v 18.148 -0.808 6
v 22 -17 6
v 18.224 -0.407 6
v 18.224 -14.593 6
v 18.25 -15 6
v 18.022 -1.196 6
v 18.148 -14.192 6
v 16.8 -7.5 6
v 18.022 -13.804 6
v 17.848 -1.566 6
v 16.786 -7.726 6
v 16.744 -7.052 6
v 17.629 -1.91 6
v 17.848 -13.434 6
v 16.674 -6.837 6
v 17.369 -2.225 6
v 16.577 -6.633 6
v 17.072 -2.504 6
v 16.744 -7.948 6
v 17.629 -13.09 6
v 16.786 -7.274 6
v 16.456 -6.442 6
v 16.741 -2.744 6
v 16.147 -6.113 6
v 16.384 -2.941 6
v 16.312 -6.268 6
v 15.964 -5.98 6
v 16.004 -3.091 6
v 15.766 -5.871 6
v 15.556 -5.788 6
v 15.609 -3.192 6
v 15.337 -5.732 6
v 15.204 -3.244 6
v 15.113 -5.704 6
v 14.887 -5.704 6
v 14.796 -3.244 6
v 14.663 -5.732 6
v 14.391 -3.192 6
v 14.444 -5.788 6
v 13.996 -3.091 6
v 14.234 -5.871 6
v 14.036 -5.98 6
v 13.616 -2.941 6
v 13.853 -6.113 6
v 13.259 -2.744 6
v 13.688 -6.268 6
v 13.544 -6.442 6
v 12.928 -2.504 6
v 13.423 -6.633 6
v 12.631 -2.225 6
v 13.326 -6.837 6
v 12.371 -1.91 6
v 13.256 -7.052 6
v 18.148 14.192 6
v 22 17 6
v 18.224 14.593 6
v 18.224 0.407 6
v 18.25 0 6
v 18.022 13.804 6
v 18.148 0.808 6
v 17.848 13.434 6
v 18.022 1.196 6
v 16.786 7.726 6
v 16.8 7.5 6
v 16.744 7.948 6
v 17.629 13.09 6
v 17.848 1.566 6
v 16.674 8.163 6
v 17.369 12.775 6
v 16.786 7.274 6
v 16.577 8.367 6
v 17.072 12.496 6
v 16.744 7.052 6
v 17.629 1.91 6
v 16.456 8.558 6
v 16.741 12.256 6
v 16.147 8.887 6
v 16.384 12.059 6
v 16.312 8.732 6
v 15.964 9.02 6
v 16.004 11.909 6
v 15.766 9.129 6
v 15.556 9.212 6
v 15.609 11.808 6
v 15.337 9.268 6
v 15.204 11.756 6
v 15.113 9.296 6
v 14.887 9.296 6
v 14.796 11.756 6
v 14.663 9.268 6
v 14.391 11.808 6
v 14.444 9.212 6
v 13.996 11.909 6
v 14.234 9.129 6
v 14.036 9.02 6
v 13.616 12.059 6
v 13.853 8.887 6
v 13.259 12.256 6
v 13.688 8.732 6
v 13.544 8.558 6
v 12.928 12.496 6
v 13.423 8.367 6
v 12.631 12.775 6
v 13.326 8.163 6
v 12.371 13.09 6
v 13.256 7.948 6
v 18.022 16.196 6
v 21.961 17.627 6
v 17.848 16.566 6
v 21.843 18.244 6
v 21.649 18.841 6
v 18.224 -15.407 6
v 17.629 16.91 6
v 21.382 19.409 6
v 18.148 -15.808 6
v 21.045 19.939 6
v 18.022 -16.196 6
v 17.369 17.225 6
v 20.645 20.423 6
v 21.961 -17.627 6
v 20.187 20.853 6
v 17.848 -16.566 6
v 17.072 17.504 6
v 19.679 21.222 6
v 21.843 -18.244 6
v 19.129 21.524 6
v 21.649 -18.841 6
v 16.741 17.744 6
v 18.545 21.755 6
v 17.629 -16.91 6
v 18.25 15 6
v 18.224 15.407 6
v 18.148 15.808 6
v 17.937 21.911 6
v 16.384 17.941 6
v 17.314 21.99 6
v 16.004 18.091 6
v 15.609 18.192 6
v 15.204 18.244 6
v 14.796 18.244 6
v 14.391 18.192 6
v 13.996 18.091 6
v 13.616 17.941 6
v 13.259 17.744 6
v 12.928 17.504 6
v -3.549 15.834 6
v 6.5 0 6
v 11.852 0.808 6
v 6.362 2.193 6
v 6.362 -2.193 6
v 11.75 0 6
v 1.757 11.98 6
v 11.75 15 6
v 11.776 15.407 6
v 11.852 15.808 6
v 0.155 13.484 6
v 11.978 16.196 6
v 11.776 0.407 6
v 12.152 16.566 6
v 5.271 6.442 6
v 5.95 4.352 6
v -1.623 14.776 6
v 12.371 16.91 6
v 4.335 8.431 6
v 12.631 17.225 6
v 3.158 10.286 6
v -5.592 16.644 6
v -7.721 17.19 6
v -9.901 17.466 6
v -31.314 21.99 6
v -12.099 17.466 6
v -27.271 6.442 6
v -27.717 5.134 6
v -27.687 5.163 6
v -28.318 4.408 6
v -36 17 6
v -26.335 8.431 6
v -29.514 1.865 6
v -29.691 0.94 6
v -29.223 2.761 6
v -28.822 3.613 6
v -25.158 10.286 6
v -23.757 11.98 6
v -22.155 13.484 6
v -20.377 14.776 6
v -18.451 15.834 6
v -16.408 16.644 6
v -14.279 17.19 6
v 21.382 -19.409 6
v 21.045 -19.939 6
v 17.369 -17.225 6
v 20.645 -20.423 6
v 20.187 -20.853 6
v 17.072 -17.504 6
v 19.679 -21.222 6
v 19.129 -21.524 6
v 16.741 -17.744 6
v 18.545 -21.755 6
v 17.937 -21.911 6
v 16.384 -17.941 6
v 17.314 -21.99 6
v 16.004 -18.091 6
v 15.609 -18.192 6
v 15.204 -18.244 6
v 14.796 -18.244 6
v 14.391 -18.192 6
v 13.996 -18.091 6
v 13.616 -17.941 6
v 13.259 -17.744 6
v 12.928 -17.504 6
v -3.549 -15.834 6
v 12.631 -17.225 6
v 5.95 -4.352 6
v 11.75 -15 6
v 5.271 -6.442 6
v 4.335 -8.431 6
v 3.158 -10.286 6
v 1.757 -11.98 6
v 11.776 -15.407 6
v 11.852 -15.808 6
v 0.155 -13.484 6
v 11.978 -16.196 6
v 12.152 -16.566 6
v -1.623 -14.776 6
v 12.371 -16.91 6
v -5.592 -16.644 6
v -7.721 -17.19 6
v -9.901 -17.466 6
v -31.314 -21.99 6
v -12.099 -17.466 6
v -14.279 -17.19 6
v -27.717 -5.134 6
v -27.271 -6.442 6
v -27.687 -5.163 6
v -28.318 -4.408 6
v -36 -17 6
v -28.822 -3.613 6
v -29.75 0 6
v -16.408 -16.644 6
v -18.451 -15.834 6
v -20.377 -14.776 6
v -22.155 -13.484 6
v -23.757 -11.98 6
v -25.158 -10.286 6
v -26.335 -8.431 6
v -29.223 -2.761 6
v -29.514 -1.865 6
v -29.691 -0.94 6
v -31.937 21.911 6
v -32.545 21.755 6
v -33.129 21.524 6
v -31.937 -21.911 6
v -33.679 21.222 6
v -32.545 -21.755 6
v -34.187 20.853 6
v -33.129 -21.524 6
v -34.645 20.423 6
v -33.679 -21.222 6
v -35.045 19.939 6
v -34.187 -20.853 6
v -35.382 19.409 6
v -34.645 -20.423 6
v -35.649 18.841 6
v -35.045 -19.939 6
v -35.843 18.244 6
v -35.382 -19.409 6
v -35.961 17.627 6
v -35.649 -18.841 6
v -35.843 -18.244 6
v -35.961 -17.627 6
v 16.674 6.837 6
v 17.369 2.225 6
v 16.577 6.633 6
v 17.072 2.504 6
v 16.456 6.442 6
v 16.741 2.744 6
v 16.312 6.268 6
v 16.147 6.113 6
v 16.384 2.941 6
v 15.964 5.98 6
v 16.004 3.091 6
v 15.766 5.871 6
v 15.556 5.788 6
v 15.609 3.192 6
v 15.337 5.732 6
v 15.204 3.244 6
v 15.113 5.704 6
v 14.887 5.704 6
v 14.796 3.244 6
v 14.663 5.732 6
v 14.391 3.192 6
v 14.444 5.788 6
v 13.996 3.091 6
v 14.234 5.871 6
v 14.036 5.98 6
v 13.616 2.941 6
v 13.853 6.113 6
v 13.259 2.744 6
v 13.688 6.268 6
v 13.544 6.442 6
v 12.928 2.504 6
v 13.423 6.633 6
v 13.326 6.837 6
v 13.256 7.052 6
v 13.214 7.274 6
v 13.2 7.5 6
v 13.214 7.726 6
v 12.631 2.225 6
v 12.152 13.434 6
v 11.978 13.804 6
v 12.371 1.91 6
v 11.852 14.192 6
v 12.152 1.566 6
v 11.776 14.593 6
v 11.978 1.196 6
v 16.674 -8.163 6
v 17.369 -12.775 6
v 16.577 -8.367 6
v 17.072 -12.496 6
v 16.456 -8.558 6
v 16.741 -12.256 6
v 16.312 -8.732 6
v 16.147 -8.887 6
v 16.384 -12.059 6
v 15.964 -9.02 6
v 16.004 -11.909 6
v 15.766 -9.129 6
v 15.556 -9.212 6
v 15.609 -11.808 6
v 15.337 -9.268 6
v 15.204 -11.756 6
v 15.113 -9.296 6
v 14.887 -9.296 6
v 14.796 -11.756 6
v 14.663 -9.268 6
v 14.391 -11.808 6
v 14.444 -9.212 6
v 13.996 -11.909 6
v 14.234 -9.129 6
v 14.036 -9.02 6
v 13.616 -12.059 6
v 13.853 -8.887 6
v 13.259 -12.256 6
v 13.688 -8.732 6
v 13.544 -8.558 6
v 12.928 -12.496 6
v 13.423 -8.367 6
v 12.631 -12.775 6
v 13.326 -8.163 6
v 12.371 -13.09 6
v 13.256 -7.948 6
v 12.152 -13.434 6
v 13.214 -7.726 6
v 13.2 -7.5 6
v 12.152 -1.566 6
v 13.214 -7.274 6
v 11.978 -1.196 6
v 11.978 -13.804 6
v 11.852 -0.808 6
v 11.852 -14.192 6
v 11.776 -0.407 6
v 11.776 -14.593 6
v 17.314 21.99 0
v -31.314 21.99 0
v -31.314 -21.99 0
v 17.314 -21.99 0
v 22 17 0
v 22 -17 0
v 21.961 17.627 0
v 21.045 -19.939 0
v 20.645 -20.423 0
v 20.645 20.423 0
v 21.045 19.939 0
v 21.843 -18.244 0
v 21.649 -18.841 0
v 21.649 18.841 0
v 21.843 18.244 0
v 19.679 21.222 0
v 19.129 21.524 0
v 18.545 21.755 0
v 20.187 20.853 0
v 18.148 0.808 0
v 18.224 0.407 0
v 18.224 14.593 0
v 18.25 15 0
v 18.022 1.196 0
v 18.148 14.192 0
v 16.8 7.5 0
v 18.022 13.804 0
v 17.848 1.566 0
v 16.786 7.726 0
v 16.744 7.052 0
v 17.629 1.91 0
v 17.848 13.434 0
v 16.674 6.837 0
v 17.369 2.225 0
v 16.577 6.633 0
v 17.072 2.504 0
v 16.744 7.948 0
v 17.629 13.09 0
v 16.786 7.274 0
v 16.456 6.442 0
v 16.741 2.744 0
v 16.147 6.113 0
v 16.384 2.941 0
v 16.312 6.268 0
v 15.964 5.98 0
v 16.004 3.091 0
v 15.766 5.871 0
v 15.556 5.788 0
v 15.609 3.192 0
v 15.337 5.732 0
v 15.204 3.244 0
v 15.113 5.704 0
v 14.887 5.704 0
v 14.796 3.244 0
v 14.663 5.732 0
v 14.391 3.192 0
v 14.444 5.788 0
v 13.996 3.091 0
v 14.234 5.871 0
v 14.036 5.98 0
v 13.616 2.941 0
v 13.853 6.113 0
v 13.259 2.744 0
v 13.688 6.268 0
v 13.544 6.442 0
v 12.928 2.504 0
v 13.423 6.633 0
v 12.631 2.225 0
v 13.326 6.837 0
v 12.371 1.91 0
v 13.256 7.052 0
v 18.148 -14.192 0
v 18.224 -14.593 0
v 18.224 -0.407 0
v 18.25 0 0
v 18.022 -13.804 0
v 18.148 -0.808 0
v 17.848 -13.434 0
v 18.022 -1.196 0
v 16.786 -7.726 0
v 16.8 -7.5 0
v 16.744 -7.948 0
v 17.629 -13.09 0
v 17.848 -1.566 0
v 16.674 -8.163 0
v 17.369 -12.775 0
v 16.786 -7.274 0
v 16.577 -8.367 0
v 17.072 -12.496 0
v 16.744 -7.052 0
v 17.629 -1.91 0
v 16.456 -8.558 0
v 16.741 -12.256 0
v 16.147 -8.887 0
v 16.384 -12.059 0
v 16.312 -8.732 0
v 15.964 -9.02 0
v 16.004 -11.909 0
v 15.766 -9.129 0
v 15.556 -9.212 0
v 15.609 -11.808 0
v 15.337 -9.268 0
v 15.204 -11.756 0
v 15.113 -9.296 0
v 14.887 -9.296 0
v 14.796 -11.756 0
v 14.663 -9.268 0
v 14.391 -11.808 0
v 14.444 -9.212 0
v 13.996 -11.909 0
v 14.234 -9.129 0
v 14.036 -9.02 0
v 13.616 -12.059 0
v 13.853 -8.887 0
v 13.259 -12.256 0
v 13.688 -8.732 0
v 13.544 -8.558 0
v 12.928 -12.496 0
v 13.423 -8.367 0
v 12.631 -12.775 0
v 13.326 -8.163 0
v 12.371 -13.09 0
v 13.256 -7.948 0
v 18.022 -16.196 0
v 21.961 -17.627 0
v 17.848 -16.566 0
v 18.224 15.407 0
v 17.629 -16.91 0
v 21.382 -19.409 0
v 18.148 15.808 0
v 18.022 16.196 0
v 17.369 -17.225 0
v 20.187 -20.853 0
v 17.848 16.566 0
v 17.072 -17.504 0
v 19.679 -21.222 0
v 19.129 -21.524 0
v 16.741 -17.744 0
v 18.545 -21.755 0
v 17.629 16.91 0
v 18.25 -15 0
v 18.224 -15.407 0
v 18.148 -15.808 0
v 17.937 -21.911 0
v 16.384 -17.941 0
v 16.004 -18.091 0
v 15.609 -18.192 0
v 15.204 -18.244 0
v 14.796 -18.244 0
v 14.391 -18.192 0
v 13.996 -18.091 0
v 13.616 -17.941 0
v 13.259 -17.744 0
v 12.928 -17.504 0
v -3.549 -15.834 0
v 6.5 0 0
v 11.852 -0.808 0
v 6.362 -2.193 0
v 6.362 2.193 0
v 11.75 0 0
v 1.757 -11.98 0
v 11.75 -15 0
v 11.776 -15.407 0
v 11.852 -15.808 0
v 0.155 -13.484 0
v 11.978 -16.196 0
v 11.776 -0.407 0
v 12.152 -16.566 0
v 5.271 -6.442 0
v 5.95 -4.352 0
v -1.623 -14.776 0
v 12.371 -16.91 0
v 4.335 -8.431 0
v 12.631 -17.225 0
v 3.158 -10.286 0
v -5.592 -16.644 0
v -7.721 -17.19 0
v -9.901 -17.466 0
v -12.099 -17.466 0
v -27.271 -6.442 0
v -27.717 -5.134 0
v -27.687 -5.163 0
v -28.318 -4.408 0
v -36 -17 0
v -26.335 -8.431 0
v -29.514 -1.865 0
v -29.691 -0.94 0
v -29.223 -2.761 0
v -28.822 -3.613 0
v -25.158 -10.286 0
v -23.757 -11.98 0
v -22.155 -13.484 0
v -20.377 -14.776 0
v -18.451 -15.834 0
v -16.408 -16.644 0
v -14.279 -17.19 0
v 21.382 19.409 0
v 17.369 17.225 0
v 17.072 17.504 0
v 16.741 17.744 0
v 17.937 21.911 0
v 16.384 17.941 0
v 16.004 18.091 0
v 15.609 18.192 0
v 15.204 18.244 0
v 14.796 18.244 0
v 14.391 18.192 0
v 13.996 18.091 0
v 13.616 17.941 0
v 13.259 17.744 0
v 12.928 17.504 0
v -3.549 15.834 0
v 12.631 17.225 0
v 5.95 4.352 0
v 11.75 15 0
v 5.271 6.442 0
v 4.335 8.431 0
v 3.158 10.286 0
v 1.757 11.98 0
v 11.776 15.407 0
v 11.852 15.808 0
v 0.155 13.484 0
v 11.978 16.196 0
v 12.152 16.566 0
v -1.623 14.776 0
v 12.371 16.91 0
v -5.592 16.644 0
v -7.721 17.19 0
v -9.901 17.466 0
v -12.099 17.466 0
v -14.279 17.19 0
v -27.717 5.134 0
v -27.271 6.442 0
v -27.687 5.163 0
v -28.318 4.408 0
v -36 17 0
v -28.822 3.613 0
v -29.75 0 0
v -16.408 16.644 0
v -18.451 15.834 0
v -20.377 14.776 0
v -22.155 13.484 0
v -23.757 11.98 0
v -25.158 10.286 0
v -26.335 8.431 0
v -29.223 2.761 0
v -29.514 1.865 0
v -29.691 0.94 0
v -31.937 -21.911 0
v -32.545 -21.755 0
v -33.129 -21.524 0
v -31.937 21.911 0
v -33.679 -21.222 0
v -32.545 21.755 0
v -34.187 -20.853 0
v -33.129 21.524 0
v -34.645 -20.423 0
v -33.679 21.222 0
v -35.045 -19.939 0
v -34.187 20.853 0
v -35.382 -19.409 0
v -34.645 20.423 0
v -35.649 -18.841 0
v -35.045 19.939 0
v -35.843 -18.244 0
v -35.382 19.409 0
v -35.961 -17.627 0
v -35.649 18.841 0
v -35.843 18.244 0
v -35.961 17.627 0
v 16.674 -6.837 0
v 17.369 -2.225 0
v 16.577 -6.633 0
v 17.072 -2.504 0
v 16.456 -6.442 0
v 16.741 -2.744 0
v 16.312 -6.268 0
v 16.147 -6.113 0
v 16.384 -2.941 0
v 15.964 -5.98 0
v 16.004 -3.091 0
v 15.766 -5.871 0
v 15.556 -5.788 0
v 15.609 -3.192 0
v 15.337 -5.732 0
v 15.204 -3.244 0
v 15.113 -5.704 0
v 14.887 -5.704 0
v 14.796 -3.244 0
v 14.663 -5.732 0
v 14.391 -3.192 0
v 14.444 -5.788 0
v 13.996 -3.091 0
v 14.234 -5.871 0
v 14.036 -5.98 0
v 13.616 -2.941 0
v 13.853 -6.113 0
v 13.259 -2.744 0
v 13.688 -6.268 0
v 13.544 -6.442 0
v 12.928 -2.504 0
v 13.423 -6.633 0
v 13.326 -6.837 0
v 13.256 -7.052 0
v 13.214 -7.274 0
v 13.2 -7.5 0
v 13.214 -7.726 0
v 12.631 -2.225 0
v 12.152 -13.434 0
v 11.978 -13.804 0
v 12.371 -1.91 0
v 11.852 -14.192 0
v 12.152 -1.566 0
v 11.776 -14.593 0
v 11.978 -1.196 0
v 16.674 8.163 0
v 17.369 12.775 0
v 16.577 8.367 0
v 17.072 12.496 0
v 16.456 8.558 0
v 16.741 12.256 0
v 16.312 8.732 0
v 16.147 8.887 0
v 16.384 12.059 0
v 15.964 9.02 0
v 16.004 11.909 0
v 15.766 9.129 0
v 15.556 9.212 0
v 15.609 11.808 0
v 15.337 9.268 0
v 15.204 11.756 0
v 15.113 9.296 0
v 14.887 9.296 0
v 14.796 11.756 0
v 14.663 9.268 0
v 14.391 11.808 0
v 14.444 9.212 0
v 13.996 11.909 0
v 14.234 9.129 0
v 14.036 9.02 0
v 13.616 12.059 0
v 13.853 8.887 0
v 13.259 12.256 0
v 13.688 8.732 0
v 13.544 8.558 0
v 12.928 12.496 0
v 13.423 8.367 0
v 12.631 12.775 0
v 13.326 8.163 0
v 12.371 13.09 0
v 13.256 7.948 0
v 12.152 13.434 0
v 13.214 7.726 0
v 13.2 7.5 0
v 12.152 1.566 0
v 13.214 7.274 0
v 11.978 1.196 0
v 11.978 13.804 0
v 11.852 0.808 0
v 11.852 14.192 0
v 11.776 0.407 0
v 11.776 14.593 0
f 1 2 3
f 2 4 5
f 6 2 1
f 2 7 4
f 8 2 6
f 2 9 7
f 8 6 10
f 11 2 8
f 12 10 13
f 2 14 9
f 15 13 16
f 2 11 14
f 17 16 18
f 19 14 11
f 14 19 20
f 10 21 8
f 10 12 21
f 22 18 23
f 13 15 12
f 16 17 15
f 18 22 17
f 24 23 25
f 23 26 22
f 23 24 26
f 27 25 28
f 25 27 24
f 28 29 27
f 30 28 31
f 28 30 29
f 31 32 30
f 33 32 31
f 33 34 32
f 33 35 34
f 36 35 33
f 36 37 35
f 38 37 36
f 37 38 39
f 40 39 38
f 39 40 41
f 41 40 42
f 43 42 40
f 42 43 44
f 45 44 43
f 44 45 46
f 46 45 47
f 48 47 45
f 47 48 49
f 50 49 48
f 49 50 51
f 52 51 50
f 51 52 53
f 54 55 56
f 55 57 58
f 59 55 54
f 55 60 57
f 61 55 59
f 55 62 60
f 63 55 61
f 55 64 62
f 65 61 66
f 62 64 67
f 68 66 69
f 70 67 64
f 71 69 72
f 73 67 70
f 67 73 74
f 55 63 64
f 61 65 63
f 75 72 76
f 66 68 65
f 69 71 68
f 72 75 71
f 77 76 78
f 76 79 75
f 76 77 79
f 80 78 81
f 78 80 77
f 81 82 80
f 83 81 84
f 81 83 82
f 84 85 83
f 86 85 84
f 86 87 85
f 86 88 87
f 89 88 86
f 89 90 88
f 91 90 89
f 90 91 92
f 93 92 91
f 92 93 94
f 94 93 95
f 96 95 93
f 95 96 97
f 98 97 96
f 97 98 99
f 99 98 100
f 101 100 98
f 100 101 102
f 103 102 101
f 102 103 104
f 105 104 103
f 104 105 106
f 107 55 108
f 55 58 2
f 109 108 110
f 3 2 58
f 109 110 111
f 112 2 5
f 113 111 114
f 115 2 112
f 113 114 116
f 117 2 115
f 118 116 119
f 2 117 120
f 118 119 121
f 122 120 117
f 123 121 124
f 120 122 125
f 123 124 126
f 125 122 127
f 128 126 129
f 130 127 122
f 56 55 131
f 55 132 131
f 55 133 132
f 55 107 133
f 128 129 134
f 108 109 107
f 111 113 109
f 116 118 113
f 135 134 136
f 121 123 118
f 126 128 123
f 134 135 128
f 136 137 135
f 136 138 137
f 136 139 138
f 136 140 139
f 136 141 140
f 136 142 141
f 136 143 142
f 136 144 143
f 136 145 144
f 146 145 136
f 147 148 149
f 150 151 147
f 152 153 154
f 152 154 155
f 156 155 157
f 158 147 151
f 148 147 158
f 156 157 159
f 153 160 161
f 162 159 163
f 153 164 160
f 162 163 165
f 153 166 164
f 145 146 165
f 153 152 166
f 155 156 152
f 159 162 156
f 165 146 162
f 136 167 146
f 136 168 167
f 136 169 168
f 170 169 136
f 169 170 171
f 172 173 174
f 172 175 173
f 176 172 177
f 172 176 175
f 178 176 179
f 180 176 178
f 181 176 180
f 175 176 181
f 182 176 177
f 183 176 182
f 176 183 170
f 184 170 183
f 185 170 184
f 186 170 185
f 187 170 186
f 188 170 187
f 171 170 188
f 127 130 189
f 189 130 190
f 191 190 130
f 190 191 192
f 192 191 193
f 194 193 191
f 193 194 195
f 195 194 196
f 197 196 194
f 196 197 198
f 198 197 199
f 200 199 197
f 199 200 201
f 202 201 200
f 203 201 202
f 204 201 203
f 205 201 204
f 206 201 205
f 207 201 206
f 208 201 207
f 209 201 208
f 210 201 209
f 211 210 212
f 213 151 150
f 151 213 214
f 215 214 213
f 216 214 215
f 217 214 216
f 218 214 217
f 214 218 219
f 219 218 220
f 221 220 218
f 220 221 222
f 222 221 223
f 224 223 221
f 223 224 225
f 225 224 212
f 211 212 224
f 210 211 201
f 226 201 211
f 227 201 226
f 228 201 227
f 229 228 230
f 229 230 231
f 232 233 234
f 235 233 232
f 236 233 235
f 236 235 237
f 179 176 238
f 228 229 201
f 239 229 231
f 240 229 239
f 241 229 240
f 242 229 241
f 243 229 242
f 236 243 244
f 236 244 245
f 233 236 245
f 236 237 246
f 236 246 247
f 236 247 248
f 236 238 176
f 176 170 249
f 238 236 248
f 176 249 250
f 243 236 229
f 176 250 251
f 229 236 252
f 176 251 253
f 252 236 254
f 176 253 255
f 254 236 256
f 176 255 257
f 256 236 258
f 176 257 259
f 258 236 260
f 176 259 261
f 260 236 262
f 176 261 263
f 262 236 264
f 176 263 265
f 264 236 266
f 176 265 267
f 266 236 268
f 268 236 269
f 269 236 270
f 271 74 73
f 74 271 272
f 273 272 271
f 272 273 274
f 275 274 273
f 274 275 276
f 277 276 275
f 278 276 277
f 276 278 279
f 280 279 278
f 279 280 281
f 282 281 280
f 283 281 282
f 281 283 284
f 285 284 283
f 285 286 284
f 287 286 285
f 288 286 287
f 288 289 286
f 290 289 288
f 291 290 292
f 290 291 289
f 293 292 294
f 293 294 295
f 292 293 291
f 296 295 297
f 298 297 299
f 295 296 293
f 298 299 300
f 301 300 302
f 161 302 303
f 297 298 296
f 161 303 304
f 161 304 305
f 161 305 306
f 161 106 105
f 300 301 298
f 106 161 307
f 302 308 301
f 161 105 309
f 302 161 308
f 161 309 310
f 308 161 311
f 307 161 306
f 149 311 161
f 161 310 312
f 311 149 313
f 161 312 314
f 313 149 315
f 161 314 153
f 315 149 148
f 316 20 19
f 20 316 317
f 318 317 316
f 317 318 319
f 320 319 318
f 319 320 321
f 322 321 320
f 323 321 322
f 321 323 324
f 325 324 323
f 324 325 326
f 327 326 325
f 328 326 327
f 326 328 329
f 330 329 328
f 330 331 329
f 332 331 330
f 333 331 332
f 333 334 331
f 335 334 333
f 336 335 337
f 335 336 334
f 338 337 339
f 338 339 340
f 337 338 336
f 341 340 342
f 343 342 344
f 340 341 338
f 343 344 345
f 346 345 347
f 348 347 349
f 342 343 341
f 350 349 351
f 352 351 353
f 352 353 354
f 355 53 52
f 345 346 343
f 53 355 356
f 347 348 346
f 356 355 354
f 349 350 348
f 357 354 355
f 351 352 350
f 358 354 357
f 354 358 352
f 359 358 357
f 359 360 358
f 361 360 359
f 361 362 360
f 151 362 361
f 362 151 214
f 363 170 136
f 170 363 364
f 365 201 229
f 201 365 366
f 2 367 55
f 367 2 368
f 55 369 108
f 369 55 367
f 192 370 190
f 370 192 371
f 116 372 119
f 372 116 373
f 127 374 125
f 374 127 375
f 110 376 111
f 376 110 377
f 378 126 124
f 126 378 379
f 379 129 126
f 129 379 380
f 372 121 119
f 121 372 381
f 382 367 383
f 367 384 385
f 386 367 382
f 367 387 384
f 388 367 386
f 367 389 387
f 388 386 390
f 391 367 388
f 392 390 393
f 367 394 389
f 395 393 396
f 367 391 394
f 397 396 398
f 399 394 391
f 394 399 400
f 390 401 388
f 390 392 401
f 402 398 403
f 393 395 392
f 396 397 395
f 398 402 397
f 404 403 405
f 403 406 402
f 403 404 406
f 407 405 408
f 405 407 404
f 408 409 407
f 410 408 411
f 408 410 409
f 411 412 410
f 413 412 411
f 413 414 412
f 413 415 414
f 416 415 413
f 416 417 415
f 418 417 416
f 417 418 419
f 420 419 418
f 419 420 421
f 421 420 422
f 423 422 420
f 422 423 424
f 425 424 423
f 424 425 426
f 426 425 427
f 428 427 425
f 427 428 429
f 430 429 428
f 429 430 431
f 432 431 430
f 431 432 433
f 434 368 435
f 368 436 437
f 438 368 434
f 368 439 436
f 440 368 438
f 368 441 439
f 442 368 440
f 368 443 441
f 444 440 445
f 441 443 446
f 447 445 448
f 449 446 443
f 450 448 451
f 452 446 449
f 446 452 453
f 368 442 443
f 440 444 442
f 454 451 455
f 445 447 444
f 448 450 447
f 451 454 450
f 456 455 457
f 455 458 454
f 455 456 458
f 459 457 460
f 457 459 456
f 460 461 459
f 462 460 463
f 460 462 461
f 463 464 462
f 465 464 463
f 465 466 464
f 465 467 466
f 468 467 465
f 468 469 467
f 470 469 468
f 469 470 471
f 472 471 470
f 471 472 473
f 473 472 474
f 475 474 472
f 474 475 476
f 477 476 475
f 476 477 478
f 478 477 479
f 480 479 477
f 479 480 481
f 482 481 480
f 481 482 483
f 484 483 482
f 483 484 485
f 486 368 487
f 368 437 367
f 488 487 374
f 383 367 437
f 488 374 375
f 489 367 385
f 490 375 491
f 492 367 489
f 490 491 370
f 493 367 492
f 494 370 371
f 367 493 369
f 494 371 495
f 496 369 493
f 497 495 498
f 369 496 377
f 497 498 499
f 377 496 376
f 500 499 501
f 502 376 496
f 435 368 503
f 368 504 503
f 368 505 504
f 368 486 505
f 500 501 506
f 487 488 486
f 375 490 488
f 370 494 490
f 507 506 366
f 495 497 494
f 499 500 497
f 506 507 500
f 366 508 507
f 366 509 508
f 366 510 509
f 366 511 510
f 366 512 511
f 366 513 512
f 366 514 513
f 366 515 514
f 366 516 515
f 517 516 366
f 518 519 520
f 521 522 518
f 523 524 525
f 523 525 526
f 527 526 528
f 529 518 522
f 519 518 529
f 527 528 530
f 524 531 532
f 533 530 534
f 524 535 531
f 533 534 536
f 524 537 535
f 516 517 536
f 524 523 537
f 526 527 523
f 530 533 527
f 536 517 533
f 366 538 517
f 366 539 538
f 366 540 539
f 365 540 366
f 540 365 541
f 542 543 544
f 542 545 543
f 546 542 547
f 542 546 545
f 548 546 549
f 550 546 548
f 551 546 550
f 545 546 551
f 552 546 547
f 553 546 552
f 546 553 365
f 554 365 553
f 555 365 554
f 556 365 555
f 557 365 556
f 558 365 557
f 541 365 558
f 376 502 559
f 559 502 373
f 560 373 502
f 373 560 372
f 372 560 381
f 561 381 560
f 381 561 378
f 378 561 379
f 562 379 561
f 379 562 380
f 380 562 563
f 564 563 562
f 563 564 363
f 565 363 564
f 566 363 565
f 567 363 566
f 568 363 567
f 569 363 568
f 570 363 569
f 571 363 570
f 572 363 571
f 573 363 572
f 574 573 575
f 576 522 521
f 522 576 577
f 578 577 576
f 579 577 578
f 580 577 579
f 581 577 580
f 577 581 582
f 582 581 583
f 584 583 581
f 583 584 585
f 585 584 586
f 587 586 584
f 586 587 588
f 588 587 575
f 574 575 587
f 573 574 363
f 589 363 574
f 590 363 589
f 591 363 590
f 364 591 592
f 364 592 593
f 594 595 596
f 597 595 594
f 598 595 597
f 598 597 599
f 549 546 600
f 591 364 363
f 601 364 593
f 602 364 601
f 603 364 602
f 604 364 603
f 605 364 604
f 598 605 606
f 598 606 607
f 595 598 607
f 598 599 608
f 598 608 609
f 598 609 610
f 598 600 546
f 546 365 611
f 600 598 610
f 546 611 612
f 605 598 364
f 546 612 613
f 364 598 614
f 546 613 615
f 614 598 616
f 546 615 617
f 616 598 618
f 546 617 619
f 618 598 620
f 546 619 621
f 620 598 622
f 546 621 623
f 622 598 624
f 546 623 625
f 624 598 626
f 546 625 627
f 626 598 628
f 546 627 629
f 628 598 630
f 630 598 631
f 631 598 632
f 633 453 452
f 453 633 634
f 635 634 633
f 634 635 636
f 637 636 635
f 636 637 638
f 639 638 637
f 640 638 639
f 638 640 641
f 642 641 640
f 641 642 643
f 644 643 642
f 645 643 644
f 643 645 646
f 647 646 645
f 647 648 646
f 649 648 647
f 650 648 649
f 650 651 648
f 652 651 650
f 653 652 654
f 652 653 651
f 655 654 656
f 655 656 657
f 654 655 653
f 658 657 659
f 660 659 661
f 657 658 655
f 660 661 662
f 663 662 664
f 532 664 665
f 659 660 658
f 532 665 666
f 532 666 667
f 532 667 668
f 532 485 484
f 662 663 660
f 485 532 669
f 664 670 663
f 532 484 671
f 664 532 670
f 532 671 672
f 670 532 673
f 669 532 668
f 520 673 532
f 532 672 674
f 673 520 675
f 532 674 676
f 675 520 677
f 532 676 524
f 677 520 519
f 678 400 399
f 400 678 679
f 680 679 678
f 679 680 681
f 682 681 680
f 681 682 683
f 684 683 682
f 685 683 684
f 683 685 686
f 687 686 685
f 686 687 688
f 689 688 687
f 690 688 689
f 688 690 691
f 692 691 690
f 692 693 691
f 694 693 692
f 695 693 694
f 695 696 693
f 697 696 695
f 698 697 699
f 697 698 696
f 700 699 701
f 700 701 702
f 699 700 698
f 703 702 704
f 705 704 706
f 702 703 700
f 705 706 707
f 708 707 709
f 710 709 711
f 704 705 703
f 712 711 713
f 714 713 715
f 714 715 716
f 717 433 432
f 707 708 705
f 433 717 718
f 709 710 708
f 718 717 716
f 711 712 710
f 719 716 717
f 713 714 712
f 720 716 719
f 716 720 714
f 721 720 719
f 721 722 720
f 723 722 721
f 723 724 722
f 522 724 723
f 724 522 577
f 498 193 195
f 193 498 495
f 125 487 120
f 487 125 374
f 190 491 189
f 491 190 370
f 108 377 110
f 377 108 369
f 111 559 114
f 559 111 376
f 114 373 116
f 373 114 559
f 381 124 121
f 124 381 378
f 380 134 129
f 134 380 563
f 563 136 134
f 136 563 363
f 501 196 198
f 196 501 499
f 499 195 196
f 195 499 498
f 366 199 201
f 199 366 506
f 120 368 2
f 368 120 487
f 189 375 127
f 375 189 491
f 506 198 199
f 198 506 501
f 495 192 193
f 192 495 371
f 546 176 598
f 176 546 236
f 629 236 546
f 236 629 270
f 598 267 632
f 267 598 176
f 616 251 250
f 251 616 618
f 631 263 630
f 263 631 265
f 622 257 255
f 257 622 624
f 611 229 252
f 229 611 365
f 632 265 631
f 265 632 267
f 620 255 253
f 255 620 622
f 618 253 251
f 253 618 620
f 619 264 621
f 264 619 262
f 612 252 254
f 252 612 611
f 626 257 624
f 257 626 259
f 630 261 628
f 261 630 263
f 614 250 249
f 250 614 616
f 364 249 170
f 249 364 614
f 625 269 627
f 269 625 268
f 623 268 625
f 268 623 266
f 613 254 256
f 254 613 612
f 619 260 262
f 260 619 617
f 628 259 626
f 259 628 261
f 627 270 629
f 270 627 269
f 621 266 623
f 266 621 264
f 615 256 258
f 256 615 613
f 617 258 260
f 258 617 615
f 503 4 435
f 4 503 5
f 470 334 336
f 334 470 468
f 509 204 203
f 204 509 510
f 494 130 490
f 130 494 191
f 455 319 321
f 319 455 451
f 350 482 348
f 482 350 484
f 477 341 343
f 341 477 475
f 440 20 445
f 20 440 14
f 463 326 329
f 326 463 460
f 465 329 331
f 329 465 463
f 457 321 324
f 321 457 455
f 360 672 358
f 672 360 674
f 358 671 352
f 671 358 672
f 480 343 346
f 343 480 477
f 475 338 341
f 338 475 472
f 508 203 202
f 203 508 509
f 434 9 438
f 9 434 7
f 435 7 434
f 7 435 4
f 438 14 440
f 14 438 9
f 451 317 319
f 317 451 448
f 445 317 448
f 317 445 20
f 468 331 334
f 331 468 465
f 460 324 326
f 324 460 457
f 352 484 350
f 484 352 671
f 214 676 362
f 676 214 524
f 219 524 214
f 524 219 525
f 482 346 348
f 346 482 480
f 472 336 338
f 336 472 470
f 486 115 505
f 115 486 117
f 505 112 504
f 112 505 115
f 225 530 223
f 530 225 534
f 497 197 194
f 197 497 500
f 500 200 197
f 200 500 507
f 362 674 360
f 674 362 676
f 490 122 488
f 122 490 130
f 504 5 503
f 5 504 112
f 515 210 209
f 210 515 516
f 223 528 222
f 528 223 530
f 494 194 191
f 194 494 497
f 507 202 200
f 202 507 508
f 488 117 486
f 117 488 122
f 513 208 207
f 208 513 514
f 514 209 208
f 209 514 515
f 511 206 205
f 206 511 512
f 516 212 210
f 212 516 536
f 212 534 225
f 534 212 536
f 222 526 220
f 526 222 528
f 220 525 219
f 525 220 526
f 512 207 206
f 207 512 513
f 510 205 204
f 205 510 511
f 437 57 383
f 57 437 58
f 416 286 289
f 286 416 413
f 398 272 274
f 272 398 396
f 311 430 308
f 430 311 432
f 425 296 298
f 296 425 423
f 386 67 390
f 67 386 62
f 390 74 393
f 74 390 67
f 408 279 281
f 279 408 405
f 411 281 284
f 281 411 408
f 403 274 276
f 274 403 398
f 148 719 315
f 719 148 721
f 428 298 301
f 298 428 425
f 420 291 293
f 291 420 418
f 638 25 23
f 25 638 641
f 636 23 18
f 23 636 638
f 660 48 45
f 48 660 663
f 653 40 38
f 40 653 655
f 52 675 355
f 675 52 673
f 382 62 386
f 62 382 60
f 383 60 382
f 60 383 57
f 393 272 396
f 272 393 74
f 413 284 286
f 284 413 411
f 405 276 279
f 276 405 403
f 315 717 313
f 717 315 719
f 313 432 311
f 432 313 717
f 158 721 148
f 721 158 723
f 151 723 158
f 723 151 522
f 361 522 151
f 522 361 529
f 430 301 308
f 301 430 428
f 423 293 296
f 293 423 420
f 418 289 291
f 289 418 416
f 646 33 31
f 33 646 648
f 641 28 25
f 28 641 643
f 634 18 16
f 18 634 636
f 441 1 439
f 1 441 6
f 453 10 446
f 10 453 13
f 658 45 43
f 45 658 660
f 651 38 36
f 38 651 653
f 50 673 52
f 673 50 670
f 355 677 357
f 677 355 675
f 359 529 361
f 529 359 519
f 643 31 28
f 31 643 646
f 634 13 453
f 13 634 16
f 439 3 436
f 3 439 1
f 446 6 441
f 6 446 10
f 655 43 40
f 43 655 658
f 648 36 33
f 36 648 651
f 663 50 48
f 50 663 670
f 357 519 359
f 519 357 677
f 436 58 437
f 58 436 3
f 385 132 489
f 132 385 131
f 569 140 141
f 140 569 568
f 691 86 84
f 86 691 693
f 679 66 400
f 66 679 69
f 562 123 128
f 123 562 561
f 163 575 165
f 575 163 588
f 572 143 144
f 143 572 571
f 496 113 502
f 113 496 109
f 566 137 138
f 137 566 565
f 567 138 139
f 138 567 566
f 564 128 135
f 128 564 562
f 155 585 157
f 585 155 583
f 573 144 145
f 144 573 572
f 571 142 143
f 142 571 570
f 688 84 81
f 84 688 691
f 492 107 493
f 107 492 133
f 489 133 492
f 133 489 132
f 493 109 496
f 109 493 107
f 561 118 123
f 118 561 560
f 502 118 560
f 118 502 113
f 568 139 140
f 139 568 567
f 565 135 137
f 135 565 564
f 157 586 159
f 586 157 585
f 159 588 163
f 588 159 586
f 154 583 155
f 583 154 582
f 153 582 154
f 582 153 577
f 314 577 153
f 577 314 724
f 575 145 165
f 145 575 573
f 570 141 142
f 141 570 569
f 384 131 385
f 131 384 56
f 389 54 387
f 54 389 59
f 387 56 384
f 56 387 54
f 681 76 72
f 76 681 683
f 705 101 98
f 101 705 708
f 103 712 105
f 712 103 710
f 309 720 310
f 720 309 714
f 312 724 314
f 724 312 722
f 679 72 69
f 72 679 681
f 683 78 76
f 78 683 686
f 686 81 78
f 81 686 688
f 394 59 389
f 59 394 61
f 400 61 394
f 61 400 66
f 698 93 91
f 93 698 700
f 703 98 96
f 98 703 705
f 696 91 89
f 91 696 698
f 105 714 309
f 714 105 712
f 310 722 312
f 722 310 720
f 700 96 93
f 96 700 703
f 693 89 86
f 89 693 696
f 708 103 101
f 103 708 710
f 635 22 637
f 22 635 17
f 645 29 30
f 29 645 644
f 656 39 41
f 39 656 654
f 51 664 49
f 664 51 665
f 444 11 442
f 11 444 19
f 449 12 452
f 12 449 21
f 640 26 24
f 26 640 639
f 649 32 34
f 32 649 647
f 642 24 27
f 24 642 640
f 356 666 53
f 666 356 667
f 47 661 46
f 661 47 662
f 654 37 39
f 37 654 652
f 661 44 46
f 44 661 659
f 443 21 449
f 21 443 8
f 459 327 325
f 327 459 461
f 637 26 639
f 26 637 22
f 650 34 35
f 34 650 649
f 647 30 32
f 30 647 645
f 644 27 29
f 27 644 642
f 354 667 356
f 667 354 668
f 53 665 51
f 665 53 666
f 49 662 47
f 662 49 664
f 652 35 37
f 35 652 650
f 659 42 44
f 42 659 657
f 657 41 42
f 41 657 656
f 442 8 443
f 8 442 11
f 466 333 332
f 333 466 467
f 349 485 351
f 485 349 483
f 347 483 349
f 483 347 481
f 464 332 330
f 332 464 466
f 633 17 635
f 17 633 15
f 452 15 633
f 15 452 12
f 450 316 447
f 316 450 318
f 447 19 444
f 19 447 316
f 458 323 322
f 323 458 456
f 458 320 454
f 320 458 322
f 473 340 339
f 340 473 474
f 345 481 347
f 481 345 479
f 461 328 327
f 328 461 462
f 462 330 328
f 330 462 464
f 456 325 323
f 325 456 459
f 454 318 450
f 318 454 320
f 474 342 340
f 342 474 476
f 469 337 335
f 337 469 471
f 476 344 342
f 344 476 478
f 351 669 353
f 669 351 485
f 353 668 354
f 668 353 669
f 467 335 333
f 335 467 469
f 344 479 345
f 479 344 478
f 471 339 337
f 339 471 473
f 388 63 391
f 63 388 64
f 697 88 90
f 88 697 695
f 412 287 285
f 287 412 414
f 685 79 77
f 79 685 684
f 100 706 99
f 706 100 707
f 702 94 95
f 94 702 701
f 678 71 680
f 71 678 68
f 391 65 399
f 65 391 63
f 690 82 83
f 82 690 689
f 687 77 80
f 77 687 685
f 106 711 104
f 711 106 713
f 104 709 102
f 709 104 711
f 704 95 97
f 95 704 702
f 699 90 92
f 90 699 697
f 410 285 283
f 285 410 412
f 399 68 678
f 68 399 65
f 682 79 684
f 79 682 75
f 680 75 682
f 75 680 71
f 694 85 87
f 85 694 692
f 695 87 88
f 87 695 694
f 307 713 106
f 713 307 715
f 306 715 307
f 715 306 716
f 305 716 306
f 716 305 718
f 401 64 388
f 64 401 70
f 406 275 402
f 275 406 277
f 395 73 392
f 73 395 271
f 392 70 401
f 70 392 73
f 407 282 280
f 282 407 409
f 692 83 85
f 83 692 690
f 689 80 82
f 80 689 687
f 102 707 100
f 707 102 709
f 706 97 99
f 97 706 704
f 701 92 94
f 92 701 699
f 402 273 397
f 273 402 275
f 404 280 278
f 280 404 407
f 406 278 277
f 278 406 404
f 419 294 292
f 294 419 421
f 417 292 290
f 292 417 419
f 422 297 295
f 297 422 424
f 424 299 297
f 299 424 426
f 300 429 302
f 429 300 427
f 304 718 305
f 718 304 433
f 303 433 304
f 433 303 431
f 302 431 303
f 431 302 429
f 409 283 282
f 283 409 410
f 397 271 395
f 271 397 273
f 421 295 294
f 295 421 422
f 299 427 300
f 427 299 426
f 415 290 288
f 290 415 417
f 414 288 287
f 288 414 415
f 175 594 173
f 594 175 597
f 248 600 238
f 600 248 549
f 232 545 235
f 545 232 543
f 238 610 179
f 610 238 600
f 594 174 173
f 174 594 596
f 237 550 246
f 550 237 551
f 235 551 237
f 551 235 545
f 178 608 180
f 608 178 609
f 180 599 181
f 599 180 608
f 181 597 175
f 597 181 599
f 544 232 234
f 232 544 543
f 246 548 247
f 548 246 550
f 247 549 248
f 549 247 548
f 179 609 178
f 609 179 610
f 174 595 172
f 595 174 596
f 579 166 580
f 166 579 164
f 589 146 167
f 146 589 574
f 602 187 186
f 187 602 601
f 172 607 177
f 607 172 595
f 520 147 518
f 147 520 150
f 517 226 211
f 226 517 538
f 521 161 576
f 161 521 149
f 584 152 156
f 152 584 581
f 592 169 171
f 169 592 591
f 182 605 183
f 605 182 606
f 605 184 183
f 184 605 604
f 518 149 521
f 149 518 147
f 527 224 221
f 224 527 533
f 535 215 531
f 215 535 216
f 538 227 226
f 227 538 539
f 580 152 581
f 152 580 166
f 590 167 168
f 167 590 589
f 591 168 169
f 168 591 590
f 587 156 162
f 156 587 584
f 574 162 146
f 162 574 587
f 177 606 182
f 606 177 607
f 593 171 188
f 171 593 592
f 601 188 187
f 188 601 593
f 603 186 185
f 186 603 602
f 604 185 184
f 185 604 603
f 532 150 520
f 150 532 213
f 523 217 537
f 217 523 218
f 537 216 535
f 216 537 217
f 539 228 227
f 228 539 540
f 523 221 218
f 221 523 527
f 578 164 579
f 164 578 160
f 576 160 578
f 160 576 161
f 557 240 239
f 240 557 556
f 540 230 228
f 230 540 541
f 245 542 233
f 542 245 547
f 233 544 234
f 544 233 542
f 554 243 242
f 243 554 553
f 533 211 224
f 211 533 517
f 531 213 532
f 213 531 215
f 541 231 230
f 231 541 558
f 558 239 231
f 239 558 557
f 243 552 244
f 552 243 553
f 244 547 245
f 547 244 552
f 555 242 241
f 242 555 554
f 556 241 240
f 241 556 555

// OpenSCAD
$fn = 50;


difference() {
	union() {
		hull() {
			translate(v = [-17.0000000000, 17.0000000000, 0]) {
				cylinder(h = 6, r = 5);
			}
			translate(v = [17.0000000000, 17.0000000000, 0]) {
				cylinder(h = 6, r = 5);
			}
			translate(v = [-17.0000000000, -17.0000000000, 0]) {
				cylinder(h = 6, r = 5);
			}
			translate(v = [17.0000000000, -17.0000000000, 0]) {
				cylinder(h = 6, r = 5);
			}
		}
		translate(v = [-14.0000000000, 0, 0]) {
			hull() {
				translate(v = [-17.0000000000, 17.0000000000, 0]) {
					cylinder(h = 6, r = 5);
				}
				translate(v = [17.0000000000, 17.0000000000, 0]) {
					cylinder(h = 6, r = 5);
				}
				translate(v = [-17.0000000000, -17.0000000000, 0]) {
					cylinder(h = 6, r = 5);
				}
				translate(v = [17.0000000000, -17.0000000000, 0]) {
					cylinder(h = 6, r = 5);
				}
			}
		}
	}
	union() {
		translate(v = [15.0000000000, -15.0000000000, -100.0000000000]) {
			cylinder(h = 200, r = 3.2500000000);
		}
		translate(v = [15.0000000000, 0.0000000000, -100.0000000000]) {
			cylinder(h = 200, r = 3.2500000000);
		}
		translate(v = [15.0000000000, 15.0000000000, -100.0000000000]) {
			cylinder(h = 200, r = 3.2500000000);
		}
		translate(v = [15.0000000000, -15.0000000000, -100.0000000000]) {
			cylinder(h = 200, r = 3.2500000000);
		}
		translate(v = [15.0000000000, 0.0000000000, -100.0000000000]) {
			cylinder(h = 200, r = 3.2500000000);
		}
		translate(v = [15.0000000000, 15.0000000000, -100.0000000000]) {
			cylinder(h = 200, r = 3.2500000000);
		}
		translate(v = [15.0000000000, -15.0000000000, -100.0000000000]) {
			cylinder(h = 200, r = 1.8000000000);
		}
		translate(v = [15.0000000000, -7.5000000000, -100.0000000000]) {
			cylinder(h = 200, r = 1.8000000000);
		}
		translate(v = [15.0000000000, 0.0000000000, -100.0000000000]) {
			cylinder(h = 200, r = 1.8000000000);
		}
		translate(v = [15.0000000000, 7.5000000000, -100.0000000000]) {
			cylinder(h = 200, r = 1.8000000000);
		}
		translate(v = [15.0000000000, 15.0000000000, -100.0000000000]) {
			cylinder(h = 200, r = 1.8000000000);
		}
		translate(v = [15.0000000000, -15.0000000000, -100.0000000000]) {
			cylinder(h = 200, r = 1.8000000000);
		}
		translate(v = [15.0000000000, -7.5000000000, -100.0000000000]) {
			cylinder(h = 200, r = 1.8000000000);
		}
		translate(v = [15.0000000000, 0.0000000000, -100.0000000000]) {
			cylinder(h = 200, r = 1.8000000000);
		}
		translate(v = [15.0000000000, 7.5000000000, -100.0000000000]) {
			cylinder(h = 200, r = 1.8000000000);
		}
		translate(v = [15.0000000000, 15.0000000000, -100.0000000000]) {
			cylinder(h = 200, r = 1.8000000000);
		}
		translate(v = [15.0000000000, -15.0000000000, -100.0000000000]) {
			cylinder(h = 200, r = 1.8000000000);
		}
		translate(v = [15.0000000000, -7.5000000000, -100.0000000000]) {
			cylinder(h = 200, r = 1.8000000000);
		}
		translate(v = [15.0000000000, 0.0000000000, -100.0000000000]) {
			cylinder(h = 200, r = 1.8000000000);
		}
		translate(v = [15.0000000000, 7.5000000000, -100.0000000000]) {
			cylinder(h = 200, r = 1.8000000000);
		}
		translate(v = [15.0000000000, 15.0000000000, -100.0000000000]) {
			cylinder(h = 200, r = 1.8000000000);
		}
		translate(v = [-18.5000000000, 0, 0]) {
			hull() {
				translate(v = [-3.7500000000, 0.0000000000, 0]) {
					cylinder(h = 6, r = 7.5000000000);
				}
				translate(v = [3.7500000000, 0.0000000000, 0]) {
					cylinder(h = 6, r = 7.5000000000);
				}
				translate(v = [-3.7500000000, -0.0000000000, 0]) {
					cylinder(h = 6, r = 7.5000000000);
				}
				translate(v = [3.7500000000, -0.0000000000, 0]) {
					cylinder(h = 6, r = 7.5000000000);
				}
			}
		}
		translate(v = [-11.0000000000, 0, 0.0000000000]) {
			cylinder(h = 6, r = 17.5000000000);
		}
	}
}
